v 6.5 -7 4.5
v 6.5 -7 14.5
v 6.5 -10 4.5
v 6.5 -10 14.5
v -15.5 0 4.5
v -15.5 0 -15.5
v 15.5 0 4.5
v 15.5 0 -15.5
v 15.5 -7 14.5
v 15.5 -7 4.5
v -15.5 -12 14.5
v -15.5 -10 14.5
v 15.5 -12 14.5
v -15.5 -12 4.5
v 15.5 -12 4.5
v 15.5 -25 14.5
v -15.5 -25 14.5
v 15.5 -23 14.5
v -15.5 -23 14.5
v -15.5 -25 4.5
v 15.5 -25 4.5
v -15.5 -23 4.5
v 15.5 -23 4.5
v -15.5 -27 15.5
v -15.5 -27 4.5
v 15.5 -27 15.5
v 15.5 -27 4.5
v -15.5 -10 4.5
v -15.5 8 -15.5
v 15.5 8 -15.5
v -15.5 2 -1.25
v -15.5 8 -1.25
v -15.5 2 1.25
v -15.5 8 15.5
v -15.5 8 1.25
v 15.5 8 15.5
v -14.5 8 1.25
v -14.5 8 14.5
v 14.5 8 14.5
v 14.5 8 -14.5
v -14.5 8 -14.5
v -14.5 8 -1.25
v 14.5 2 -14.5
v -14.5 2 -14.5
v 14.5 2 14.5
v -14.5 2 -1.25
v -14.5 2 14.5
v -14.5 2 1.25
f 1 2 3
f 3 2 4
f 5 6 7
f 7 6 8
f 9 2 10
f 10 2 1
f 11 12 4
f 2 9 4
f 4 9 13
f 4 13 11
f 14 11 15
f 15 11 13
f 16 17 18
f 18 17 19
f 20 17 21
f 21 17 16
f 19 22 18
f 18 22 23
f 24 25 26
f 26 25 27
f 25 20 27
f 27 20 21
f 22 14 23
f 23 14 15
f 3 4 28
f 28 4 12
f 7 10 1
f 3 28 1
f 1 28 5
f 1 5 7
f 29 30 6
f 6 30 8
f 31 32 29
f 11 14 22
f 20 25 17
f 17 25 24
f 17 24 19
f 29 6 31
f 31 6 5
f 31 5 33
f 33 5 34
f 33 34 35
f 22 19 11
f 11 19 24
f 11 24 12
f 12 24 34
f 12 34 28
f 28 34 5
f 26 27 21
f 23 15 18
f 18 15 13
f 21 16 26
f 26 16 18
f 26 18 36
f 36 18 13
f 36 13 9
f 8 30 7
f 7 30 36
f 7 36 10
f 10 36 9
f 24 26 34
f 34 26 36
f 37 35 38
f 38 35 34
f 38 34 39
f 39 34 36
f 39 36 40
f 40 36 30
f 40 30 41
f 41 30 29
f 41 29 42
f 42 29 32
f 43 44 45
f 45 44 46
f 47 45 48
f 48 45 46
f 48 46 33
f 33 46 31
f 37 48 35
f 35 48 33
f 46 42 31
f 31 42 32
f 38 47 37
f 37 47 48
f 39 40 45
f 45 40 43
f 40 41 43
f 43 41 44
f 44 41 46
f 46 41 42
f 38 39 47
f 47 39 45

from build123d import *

# Parameters (mm, degrees)
CROQUIS1_W              = 33
CROQUIS1_H              = 33
SALIENTE_EXTRUIR2_DEPTH = 8
VACIADO1_T              = -2
CROQUIS5_W              = 4.422149387
CROQUIS5_H              = 2.5
CORTAR_EXTRUIR3_DEPTH   = 6
CROQUIS6_W              = 32.965049926
CROQUIS6_H              = 12
SALIENTE_EXTRUIR3_DEPTH = 27
CROQUIS7_W              = 32.965049926
CROQUIS7_H              = 2
CORTAR_EXTRUIR4_DEPTH   = 10
CROQUIS8_W              = 10
CROQUIS8_H              = 5
CORTAR_EXTRUIR5_DEPTH   = 10
CROQUIS9_W              = 33
CROQUIS9_H              = 33
CROQUIS9_W_2            = 31
CROQUIS9_H_2            = 31
CORTAR_EXTRUIR6_DEPTH   = 43.065425233


with BuildPart() as part:
    # Croquis1 → Saliente-Extruir2 (new body)
    with BuildSketch(Plane(origin=(0, 0, 0), x_dir=(1, 0, 0), z_dir=(0, 1, 0))):
        Rectangle(CROQUIS1_W, CROQUIS1_H)
    extrude(amount=SALIENTE_EXTRUIR2_DEPTH)

    # Vaciado1
    vaciado1_openings = [part.faces().sort_by_distance(p)[0] for p in [
        (0, 8, 0),
    ]]
    offset(amount=VACIADO1_T, openings=vaciado1_openings, kind=Kind.INTERSECTION)

    # Croquis5 → Cortar-Extruir3 (cut)
    with BuildSketch(Plane(origin=(0, 8, 0), x_dir=(1, 0, 0), z_dir=(0, 1, 0))):
        with Locations((-15.634605234, 0)):
            Rectangle(CROQUIS5_W, CROQUIS5_H)
    extrude(amount=-CORTAR_EXTRUIR3_DEPTH, mode=Mode.SUBTRACT)

    # Croquis6 → Saliente-Extruir3 (add)
    with BuildSketch(Plane.XZ):
        with Locations((0.017475037, 10.5)):
            Rectangle(CROQUIS6_W, CROQUIS6_H)
    extrude(amount=SALIENTE_EXTRUIR3_DEPTH)

    # Croquis7 → Cortar-Extruir4 (cut)
    with BuildSketch(Plane(origin=(0, 0, 4.5), x_dir=(-1, 0, 0), z_dir=(0, 0, -1))):
        with Locations((-0.017475037, -24)):
            Rectangle(CROQUIS7_W, CROQUIS7_H)
        with Locations((-0.017475037, -11)):
            Rectangle(CROQUIS7_W, CROQUIS7_H)
    extrude(amount=-CORTAR_EXTRUIR4_DEPTH, mode=Mode.SUBTRACT)

    # Croquis8 → Cortar-Extruir5 (cut)
    with BuildSketch(Plane(origin=(0, 0, 14.5), x_dir=(-1, 0, 0), z_dir=(0, 0, -1))):
        with Locations((-11.5, -9.5)):
            Rectangle(CROQUIS8_W, CROQUIS8_H)
    extrude(amount=CORTAR_EXTRUIR5_DEPTH, mode=Mode.SUBTRACT)

    # Croquis9 → Cortar-Extruir6 (cut, through all)
    with BuildSketch(Plane(origin=(0, 8, 0), x_dir=(1, 0, 0), z_dir=(0, 1, 0))):
        Rectangle(CROQUIS9_W, CROQUIS9_H)
        Rectangle(CROQUIS9_W_2, CROQUIS9_H_2, mode=Mode.SUBTRACT)
    extrude(amount=-CORTAR_EXTRUIR6_DEPTH, mode=Mode.SUBTRACT)


solid = part.part
